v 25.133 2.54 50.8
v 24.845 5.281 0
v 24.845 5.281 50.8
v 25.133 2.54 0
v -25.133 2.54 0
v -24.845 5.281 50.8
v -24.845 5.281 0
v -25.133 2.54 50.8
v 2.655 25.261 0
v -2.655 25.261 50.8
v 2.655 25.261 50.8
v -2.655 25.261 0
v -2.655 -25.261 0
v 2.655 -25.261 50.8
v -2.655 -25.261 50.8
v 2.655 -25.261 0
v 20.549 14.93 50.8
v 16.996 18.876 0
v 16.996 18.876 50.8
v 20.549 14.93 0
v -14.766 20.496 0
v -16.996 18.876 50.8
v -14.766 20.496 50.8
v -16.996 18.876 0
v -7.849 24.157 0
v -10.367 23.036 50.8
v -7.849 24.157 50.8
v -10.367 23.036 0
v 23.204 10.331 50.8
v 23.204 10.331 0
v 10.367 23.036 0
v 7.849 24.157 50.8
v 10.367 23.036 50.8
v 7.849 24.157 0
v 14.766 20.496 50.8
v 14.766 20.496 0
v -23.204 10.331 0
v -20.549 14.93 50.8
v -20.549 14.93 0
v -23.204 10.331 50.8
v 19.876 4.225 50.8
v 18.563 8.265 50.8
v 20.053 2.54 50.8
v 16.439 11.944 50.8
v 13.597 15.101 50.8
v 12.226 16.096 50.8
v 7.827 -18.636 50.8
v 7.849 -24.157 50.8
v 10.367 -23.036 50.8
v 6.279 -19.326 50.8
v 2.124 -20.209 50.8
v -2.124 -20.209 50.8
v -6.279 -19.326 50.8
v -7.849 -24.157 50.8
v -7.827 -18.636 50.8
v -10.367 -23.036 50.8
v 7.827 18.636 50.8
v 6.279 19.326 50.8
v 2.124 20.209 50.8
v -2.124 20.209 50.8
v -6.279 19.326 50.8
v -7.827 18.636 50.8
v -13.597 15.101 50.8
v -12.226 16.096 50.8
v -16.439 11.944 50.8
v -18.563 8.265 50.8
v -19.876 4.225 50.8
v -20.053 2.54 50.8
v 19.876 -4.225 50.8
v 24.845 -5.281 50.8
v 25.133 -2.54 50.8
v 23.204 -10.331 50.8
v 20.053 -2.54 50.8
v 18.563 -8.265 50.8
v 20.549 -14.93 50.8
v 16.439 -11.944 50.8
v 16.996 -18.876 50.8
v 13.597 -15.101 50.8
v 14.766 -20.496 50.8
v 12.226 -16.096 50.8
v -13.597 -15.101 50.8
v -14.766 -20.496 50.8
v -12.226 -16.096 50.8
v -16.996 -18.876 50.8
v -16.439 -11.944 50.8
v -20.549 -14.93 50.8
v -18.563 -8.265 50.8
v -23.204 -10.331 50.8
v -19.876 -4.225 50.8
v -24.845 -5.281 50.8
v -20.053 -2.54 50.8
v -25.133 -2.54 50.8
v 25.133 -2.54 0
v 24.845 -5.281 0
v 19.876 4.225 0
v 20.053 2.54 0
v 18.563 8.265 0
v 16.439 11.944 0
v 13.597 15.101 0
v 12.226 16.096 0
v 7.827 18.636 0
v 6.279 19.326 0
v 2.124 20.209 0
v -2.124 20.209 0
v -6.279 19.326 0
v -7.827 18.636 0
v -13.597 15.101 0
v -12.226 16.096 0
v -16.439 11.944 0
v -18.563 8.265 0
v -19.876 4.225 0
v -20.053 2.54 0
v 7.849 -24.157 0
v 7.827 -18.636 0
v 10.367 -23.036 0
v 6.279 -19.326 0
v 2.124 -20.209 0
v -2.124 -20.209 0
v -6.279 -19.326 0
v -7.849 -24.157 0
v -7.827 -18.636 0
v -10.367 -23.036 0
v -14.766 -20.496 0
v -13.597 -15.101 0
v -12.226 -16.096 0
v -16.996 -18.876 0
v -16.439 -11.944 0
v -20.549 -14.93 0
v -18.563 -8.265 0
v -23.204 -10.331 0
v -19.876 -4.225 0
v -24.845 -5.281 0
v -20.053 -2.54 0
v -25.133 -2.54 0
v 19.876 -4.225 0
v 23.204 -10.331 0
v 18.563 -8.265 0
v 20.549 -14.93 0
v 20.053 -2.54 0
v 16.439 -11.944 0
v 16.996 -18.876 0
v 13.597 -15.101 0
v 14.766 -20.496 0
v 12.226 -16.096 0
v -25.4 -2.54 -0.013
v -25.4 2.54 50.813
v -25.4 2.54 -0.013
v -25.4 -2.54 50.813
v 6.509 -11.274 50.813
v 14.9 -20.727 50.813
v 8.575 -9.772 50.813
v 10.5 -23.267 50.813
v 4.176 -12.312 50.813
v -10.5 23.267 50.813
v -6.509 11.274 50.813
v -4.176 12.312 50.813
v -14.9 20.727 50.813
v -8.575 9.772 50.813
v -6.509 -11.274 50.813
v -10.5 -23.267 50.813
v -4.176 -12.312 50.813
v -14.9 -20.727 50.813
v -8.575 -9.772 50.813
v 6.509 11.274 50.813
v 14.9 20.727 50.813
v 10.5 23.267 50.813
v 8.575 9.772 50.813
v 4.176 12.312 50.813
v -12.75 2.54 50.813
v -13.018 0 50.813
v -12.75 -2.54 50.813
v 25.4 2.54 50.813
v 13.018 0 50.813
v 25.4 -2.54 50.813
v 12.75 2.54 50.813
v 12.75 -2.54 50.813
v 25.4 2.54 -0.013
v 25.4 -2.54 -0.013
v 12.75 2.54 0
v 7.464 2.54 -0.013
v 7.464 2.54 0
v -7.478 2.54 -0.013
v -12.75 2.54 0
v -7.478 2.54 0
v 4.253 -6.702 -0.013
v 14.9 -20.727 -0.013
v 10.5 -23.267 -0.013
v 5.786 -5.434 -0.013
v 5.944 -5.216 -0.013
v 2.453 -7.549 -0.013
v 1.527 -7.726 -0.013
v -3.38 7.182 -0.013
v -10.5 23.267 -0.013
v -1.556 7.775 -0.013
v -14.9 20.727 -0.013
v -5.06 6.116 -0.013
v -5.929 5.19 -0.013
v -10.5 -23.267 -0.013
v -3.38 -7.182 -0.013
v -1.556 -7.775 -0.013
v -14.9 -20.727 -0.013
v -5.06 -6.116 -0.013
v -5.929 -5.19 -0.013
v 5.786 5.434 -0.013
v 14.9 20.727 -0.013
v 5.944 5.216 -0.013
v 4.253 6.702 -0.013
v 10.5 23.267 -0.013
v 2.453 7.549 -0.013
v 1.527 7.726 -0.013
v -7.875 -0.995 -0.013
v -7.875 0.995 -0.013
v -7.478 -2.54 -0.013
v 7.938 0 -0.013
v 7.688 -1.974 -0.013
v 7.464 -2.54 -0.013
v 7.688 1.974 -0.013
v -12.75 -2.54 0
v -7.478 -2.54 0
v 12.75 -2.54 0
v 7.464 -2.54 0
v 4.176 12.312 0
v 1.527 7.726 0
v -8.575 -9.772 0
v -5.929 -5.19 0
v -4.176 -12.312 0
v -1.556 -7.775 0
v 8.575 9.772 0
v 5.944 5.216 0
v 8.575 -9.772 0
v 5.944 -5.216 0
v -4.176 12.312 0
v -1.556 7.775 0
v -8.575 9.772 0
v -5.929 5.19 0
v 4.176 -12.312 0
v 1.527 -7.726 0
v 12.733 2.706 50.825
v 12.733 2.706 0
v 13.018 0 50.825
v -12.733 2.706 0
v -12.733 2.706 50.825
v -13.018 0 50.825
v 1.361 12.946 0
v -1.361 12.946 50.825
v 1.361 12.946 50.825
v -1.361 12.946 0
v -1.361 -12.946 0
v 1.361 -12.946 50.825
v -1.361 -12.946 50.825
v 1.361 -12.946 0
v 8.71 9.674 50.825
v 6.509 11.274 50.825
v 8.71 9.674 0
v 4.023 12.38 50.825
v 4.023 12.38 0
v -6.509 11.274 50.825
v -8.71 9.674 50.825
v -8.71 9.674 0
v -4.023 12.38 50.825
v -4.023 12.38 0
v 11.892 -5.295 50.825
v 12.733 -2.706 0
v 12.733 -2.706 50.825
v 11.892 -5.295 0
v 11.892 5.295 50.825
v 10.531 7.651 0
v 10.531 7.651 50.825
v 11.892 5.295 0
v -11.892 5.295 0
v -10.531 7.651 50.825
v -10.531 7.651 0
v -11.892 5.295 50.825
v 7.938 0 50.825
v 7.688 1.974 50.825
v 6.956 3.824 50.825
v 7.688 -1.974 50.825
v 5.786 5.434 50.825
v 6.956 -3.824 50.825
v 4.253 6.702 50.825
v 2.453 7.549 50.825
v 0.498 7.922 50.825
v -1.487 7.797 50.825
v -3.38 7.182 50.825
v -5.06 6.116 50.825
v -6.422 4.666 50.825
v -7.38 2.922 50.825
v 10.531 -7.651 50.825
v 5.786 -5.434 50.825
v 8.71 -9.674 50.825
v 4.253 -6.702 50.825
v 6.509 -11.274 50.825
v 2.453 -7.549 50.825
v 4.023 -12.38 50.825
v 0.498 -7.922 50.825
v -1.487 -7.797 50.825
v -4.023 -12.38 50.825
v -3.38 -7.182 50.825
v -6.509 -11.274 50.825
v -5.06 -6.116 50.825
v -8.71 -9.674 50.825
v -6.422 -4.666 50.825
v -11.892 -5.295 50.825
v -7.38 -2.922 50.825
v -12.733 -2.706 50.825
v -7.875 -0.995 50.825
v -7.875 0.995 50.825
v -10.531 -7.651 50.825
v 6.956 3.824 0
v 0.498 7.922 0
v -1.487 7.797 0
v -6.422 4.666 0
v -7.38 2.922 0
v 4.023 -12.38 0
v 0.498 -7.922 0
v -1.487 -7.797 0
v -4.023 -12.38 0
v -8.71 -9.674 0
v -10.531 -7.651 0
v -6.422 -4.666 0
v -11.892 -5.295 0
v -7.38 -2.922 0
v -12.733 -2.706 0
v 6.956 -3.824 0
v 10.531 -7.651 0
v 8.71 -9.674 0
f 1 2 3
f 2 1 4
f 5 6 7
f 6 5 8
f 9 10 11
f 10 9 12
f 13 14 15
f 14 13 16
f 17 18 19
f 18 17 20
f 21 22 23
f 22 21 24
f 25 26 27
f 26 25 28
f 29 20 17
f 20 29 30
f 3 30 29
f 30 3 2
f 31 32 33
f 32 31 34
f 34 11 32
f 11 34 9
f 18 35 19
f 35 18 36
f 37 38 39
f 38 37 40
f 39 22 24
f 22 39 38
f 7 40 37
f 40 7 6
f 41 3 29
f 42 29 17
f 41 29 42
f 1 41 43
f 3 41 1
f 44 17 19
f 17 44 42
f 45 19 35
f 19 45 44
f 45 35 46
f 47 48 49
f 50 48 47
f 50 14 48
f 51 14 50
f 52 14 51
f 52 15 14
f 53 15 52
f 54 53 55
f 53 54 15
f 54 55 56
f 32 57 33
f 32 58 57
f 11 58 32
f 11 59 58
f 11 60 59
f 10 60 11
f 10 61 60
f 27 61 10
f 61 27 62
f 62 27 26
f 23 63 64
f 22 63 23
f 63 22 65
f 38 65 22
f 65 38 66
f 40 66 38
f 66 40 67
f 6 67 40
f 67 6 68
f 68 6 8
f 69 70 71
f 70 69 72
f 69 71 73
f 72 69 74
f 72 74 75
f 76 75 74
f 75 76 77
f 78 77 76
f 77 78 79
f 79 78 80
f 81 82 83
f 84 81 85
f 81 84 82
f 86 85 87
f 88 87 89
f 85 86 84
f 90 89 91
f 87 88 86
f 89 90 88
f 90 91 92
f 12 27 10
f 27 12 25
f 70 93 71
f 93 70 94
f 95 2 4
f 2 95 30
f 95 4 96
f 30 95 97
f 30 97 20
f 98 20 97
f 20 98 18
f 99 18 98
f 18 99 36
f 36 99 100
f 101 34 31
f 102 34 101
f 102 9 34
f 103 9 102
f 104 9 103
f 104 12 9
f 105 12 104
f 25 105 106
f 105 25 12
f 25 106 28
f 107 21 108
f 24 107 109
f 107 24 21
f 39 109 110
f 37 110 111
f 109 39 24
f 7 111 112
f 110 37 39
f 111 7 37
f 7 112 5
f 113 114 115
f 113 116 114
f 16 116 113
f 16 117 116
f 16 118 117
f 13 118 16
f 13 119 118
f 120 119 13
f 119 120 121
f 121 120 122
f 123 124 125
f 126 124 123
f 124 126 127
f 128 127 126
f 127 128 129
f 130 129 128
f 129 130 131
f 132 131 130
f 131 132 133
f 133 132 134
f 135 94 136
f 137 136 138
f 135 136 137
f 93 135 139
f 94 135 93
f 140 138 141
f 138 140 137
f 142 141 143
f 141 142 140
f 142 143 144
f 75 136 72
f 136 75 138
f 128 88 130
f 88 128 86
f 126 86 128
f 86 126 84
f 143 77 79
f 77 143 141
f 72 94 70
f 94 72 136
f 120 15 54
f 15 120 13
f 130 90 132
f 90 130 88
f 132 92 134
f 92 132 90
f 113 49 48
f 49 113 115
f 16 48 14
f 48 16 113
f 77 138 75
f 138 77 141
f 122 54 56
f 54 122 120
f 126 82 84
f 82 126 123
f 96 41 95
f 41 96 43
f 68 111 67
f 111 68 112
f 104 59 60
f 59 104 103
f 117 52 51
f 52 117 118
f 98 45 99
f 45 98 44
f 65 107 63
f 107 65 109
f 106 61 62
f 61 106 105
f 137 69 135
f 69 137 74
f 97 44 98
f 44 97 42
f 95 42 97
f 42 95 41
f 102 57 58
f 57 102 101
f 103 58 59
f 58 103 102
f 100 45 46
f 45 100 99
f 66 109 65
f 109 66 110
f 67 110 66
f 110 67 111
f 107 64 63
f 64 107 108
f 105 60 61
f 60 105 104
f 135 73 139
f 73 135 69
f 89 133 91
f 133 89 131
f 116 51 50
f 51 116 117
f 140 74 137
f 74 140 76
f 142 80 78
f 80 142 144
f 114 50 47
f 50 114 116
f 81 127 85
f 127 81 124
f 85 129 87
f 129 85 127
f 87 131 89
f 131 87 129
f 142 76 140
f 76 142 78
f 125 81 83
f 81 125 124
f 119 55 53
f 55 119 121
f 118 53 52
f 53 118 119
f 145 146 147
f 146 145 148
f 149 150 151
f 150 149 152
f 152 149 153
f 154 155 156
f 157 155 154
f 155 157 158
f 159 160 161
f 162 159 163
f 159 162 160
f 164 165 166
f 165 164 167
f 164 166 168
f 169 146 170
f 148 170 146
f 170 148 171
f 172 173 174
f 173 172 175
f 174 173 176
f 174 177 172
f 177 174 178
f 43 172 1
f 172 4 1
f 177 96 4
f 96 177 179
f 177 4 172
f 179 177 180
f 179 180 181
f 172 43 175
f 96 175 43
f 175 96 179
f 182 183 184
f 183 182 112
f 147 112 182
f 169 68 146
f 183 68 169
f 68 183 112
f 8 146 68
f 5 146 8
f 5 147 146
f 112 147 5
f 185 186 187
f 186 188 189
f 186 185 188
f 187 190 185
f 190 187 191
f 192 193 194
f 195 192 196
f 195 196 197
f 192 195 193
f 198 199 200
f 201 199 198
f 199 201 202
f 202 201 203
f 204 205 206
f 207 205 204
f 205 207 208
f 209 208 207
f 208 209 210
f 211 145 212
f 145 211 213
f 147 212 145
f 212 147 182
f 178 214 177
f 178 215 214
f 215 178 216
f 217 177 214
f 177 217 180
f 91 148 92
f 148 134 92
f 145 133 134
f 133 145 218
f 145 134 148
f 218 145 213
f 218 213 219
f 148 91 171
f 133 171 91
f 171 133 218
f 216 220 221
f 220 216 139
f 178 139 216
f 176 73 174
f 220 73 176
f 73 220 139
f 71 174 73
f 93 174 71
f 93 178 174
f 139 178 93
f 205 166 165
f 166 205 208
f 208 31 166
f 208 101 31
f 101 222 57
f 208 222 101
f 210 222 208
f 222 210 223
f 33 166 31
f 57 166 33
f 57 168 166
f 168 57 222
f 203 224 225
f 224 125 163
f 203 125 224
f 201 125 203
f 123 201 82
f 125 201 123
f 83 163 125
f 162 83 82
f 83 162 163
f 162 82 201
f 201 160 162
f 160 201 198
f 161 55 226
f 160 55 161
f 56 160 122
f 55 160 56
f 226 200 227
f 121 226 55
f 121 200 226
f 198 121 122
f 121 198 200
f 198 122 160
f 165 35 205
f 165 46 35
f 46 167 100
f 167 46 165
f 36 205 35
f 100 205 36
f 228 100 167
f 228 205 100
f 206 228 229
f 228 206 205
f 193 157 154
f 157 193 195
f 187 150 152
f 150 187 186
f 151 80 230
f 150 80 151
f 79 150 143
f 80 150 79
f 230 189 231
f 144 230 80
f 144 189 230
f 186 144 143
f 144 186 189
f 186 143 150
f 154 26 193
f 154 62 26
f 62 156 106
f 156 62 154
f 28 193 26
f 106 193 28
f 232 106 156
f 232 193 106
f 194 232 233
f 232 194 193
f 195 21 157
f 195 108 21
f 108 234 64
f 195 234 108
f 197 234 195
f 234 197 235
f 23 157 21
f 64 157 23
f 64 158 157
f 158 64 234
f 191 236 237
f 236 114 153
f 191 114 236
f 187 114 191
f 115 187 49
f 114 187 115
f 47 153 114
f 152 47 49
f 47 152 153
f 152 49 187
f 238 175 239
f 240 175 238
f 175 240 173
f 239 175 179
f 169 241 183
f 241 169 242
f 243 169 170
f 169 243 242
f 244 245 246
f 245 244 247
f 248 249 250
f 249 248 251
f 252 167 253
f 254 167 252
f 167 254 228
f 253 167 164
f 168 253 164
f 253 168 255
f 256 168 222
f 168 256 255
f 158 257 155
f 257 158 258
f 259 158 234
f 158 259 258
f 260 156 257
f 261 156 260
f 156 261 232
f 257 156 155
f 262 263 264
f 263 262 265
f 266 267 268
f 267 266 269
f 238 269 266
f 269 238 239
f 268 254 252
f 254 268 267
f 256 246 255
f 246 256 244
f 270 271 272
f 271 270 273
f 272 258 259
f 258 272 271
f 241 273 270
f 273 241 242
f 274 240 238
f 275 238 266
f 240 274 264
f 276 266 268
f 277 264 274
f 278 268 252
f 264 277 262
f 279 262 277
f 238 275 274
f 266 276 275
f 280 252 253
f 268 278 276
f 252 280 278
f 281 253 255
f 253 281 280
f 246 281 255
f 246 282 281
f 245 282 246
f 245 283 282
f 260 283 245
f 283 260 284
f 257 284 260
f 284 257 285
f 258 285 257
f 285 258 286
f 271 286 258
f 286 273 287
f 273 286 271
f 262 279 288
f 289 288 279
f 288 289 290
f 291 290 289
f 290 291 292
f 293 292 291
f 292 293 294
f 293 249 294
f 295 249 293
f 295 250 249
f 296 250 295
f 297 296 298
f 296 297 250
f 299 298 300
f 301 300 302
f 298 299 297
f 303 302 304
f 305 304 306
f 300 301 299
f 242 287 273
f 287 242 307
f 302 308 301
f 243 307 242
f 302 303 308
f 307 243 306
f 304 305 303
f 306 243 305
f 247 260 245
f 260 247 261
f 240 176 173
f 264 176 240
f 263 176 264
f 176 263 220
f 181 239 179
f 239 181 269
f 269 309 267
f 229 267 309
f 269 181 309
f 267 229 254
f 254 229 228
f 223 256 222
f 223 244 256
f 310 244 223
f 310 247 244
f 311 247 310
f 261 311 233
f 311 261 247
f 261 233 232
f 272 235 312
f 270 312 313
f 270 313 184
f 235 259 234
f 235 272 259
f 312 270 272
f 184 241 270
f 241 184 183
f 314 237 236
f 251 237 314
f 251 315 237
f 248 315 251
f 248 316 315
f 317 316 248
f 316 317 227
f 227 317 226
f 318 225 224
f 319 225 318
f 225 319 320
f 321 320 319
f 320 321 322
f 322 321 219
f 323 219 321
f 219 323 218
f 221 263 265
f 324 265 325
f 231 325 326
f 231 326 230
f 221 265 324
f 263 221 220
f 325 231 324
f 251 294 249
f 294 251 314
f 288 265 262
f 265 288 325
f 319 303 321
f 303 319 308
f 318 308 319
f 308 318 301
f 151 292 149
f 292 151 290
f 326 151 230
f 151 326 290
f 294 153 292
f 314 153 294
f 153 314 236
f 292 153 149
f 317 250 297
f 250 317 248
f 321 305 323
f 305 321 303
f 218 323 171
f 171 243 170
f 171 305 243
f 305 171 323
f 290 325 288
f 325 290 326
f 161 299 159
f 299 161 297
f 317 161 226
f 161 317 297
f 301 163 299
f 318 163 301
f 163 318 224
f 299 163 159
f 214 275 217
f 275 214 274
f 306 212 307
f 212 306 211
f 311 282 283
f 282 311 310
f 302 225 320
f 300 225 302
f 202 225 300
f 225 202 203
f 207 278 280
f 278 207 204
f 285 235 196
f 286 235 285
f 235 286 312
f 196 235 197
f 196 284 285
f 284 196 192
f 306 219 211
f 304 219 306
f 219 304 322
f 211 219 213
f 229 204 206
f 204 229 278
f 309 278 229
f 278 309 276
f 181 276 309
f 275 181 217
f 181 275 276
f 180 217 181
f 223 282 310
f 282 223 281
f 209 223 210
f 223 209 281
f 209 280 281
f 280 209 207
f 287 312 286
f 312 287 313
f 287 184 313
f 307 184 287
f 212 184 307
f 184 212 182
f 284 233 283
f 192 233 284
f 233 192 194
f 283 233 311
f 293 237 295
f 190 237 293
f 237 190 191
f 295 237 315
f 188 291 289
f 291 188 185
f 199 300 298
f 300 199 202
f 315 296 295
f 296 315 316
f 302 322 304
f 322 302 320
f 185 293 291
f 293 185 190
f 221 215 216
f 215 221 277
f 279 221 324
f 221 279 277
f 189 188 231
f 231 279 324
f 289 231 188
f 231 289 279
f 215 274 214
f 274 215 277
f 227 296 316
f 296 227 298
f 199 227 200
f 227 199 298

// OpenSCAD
//
// Creates a spacer for fitting a 2" spool on a 5/8" axle,
// e.g. a standard 10# MIG wire roll.  For making a re-spooler.
//
// This work is licensed under the Creative Commons Attribution-ShareAlike 4.0 
// International License. To view a copy of this license, visit 
// http://creativecommons.org/licenses/by-sa/4.0/ or send a letter to 
// Creative Commons, PO Box 1866, Mountain View, CA 94042, USA.
//

// Values specified in inches ...
mmPerInch = 25.4;

// Parameterized values

// Desired outerDiam = 2.000, actual = 1.920, delta = 0.080
// Desired innerDiam = 0.625, actual = 0.560, delta = 0.060

outerDiam = 2 * mmPerInch;
innerDiam = (5.0 / 8.0) * mmPerInch;
height = 2 * mmPerInch;  // max thickness of spool
epsilon = 0.001 * mmPerInch;
spokeThickness = 0.20 * mmPerInch;
innerWallThickness = 0.200 * mmPerInch;
outerWallThickness = 0.200 * mmPerInch;

module spoke()
{
    translate([0, 0, height/2]) 
    {
        union() {
            cube([outerDiam, spokeThickness, height + epsilon], center = true);
            rotate(60) {
                cube([outerDiam, spokeThickness, height + epsilon], center = true);
            }
            rotate(120) {
                cube([outerDiam, spokeThickness, height + epsilon], center = true);
            }
        }
    }
}

module outerCyl()
{
    difference() {
        cylinder(h = height, d = outerDiam, center = false);
        
        // remove inside to make a 'shell', centered + extra height to avoid rounding artifacts
        cylinder(h = 3*height, d = outerDiam - 2*outerWallThickness, center = true);
    }
}


difference()
{
    union() {
        outerCyl();
        cylinder(h = height + epsilon, d = innerDiam + 2*innerWallThickness, center = false);
        spoke();
    }
    
    // remove hole for axle, centered + extra height to avoid rounding artifacts
    cylinder(h = 3*height, d = innerDiam, center = true);
}
